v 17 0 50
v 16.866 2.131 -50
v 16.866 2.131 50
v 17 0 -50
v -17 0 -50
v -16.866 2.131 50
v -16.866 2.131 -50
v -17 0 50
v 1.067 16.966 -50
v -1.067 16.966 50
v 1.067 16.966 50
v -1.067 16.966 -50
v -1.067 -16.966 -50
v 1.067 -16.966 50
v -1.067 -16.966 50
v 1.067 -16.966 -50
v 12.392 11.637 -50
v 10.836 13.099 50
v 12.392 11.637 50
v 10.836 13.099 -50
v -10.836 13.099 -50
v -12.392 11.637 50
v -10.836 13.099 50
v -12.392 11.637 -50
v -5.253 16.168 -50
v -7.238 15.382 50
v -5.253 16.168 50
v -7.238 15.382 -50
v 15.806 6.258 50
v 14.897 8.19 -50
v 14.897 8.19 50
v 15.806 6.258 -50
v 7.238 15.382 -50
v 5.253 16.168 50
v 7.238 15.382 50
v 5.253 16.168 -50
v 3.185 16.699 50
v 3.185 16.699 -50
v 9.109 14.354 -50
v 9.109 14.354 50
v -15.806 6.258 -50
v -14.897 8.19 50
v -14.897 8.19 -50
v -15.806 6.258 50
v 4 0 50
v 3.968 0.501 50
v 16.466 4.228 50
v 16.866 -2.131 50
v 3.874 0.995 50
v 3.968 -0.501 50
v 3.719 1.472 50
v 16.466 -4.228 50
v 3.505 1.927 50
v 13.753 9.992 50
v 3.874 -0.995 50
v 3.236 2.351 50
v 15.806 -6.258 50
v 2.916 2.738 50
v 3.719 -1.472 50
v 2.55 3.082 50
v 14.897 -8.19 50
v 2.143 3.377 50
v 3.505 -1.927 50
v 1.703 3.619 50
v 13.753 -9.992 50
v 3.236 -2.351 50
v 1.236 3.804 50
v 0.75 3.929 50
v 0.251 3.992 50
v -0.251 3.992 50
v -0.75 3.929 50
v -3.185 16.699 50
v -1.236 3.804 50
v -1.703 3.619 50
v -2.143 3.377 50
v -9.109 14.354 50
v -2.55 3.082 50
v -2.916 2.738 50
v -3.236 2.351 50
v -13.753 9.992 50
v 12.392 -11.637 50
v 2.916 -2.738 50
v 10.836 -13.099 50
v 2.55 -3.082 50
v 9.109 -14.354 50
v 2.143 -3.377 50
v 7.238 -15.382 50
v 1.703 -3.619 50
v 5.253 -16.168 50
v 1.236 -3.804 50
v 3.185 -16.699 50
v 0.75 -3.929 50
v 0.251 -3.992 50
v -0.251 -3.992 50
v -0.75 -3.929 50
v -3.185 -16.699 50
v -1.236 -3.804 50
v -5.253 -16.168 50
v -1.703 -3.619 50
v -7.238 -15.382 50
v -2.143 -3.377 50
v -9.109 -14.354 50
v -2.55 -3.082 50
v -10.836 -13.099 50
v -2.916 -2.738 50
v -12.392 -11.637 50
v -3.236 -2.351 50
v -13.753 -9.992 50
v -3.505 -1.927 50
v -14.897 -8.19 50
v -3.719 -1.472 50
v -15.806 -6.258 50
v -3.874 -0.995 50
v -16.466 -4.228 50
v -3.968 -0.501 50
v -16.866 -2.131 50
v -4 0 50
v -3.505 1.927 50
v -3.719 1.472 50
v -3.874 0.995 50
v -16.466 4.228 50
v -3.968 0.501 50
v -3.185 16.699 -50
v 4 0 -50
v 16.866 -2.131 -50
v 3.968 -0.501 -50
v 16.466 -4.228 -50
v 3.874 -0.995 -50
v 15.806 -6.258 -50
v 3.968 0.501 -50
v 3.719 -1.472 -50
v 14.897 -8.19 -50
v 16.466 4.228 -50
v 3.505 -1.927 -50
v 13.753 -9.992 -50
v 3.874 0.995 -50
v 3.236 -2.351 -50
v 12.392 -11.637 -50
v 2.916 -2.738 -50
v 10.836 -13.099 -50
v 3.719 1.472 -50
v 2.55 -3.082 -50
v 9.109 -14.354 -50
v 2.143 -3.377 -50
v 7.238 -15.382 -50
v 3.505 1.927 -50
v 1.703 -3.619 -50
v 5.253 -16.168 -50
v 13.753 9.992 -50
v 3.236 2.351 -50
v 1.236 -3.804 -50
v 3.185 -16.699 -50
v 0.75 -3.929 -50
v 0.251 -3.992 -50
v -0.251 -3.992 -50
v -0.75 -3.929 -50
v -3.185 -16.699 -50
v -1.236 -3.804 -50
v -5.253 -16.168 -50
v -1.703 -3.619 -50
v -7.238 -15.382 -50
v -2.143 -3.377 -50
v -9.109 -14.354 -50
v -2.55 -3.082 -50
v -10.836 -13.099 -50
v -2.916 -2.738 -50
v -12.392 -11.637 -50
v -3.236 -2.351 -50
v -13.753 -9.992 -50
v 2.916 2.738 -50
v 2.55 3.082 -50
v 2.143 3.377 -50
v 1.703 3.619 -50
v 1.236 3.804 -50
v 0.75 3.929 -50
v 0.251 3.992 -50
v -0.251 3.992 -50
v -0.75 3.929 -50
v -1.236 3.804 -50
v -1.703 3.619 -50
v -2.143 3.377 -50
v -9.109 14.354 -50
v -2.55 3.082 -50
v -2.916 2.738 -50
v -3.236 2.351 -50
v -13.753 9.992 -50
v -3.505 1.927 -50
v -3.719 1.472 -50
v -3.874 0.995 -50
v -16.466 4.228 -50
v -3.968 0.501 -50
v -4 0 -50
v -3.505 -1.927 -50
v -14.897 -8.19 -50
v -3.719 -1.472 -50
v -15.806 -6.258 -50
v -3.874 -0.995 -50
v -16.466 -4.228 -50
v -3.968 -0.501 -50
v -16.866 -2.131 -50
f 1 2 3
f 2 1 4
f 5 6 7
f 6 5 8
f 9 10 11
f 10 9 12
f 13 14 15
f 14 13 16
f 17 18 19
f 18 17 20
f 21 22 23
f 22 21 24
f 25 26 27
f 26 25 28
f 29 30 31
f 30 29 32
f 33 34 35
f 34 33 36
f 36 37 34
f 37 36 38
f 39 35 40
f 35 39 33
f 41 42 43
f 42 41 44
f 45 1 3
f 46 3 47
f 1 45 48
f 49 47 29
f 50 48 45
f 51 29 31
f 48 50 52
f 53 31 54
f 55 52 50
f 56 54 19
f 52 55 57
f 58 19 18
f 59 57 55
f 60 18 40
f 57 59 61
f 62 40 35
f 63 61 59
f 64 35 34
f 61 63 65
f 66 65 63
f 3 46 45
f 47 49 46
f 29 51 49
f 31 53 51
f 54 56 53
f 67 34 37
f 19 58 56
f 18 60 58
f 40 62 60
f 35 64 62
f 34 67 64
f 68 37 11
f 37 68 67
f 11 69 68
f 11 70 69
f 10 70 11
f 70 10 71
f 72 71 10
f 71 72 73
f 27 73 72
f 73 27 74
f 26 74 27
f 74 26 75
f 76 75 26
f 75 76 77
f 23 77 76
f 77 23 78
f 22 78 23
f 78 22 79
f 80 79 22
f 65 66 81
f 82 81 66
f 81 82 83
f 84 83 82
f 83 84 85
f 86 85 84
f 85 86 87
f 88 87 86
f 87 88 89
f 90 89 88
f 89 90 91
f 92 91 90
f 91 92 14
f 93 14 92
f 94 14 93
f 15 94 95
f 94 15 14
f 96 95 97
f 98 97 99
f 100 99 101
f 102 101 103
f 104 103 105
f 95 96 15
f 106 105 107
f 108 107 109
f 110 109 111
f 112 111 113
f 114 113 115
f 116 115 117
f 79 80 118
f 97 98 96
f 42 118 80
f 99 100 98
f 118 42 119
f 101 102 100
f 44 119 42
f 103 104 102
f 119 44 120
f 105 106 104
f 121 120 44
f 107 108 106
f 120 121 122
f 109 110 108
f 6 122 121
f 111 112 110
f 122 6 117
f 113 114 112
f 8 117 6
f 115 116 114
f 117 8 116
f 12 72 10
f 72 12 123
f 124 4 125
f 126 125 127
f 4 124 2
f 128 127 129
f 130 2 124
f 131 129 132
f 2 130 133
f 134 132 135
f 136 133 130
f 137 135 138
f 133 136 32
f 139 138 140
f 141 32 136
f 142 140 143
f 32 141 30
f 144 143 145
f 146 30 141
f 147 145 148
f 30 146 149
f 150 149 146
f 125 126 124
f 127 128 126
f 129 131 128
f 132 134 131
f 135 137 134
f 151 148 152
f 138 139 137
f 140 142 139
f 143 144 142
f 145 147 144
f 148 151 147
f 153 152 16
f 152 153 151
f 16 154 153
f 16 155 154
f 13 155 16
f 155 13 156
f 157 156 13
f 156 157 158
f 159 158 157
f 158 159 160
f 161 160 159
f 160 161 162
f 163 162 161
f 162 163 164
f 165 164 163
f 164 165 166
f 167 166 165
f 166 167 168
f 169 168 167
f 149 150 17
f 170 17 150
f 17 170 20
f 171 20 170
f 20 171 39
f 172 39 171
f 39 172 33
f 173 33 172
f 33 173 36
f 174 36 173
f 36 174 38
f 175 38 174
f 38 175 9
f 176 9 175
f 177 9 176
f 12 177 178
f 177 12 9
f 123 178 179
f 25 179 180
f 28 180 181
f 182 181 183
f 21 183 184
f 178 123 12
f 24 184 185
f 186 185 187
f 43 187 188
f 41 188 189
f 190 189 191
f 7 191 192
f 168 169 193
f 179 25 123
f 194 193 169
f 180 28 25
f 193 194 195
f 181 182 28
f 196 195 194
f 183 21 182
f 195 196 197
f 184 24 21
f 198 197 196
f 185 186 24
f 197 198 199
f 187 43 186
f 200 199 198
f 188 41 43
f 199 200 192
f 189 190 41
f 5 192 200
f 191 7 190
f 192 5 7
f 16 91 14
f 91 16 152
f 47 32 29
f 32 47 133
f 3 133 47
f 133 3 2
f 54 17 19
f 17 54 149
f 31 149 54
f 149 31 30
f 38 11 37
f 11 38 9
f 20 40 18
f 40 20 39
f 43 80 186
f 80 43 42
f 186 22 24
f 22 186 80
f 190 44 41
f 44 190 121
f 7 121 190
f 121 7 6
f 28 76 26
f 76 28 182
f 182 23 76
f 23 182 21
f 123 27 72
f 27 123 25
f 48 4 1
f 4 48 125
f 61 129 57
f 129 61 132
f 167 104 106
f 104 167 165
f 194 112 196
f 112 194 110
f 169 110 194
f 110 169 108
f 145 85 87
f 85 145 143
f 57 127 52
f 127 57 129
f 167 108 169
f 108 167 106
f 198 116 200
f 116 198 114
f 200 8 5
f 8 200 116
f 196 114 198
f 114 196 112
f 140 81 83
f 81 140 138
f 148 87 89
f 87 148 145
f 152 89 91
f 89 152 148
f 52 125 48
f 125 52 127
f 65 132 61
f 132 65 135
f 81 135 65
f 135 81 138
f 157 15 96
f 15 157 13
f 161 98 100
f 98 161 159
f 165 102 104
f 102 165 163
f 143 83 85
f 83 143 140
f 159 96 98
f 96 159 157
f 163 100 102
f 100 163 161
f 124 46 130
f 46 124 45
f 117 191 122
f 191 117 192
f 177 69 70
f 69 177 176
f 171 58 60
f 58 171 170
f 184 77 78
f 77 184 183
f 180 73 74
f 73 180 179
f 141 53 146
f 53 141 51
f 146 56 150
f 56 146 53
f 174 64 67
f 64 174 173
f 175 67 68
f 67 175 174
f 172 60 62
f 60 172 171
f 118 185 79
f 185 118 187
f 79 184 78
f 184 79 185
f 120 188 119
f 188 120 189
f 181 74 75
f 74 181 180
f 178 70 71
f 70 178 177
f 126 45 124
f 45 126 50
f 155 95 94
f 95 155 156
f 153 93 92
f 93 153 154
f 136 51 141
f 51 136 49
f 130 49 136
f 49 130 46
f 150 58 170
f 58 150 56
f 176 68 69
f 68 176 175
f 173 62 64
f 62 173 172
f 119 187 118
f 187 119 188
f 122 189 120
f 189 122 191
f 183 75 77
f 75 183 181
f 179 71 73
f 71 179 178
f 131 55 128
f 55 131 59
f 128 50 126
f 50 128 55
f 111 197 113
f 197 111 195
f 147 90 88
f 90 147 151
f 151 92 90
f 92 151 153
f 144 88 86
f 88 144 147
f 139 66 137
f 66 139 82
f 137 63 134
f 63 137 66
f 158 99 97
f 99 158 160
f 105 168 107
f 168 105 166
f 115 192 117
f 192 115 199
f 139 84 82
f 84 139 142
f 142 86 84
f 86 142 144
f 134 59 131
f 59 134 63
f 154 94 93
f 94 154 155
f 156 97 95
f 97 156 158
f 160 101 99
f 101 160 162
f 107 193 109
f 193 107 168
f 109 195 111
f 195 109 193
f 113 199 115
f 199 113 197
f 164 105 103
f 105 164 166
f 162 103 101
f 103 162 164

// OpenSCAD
$fn = 50;


difference() {
	union() {
		translate(v = [0, 0, -50.0000000000]) {
			cylinder(h = 100, r = 17.0000000000);
		}
	}
	union() {
		translate(v = [0, 0, -100.0000000000]) {
			cylinder(h = 200, r = 4);
		}
	}
}
